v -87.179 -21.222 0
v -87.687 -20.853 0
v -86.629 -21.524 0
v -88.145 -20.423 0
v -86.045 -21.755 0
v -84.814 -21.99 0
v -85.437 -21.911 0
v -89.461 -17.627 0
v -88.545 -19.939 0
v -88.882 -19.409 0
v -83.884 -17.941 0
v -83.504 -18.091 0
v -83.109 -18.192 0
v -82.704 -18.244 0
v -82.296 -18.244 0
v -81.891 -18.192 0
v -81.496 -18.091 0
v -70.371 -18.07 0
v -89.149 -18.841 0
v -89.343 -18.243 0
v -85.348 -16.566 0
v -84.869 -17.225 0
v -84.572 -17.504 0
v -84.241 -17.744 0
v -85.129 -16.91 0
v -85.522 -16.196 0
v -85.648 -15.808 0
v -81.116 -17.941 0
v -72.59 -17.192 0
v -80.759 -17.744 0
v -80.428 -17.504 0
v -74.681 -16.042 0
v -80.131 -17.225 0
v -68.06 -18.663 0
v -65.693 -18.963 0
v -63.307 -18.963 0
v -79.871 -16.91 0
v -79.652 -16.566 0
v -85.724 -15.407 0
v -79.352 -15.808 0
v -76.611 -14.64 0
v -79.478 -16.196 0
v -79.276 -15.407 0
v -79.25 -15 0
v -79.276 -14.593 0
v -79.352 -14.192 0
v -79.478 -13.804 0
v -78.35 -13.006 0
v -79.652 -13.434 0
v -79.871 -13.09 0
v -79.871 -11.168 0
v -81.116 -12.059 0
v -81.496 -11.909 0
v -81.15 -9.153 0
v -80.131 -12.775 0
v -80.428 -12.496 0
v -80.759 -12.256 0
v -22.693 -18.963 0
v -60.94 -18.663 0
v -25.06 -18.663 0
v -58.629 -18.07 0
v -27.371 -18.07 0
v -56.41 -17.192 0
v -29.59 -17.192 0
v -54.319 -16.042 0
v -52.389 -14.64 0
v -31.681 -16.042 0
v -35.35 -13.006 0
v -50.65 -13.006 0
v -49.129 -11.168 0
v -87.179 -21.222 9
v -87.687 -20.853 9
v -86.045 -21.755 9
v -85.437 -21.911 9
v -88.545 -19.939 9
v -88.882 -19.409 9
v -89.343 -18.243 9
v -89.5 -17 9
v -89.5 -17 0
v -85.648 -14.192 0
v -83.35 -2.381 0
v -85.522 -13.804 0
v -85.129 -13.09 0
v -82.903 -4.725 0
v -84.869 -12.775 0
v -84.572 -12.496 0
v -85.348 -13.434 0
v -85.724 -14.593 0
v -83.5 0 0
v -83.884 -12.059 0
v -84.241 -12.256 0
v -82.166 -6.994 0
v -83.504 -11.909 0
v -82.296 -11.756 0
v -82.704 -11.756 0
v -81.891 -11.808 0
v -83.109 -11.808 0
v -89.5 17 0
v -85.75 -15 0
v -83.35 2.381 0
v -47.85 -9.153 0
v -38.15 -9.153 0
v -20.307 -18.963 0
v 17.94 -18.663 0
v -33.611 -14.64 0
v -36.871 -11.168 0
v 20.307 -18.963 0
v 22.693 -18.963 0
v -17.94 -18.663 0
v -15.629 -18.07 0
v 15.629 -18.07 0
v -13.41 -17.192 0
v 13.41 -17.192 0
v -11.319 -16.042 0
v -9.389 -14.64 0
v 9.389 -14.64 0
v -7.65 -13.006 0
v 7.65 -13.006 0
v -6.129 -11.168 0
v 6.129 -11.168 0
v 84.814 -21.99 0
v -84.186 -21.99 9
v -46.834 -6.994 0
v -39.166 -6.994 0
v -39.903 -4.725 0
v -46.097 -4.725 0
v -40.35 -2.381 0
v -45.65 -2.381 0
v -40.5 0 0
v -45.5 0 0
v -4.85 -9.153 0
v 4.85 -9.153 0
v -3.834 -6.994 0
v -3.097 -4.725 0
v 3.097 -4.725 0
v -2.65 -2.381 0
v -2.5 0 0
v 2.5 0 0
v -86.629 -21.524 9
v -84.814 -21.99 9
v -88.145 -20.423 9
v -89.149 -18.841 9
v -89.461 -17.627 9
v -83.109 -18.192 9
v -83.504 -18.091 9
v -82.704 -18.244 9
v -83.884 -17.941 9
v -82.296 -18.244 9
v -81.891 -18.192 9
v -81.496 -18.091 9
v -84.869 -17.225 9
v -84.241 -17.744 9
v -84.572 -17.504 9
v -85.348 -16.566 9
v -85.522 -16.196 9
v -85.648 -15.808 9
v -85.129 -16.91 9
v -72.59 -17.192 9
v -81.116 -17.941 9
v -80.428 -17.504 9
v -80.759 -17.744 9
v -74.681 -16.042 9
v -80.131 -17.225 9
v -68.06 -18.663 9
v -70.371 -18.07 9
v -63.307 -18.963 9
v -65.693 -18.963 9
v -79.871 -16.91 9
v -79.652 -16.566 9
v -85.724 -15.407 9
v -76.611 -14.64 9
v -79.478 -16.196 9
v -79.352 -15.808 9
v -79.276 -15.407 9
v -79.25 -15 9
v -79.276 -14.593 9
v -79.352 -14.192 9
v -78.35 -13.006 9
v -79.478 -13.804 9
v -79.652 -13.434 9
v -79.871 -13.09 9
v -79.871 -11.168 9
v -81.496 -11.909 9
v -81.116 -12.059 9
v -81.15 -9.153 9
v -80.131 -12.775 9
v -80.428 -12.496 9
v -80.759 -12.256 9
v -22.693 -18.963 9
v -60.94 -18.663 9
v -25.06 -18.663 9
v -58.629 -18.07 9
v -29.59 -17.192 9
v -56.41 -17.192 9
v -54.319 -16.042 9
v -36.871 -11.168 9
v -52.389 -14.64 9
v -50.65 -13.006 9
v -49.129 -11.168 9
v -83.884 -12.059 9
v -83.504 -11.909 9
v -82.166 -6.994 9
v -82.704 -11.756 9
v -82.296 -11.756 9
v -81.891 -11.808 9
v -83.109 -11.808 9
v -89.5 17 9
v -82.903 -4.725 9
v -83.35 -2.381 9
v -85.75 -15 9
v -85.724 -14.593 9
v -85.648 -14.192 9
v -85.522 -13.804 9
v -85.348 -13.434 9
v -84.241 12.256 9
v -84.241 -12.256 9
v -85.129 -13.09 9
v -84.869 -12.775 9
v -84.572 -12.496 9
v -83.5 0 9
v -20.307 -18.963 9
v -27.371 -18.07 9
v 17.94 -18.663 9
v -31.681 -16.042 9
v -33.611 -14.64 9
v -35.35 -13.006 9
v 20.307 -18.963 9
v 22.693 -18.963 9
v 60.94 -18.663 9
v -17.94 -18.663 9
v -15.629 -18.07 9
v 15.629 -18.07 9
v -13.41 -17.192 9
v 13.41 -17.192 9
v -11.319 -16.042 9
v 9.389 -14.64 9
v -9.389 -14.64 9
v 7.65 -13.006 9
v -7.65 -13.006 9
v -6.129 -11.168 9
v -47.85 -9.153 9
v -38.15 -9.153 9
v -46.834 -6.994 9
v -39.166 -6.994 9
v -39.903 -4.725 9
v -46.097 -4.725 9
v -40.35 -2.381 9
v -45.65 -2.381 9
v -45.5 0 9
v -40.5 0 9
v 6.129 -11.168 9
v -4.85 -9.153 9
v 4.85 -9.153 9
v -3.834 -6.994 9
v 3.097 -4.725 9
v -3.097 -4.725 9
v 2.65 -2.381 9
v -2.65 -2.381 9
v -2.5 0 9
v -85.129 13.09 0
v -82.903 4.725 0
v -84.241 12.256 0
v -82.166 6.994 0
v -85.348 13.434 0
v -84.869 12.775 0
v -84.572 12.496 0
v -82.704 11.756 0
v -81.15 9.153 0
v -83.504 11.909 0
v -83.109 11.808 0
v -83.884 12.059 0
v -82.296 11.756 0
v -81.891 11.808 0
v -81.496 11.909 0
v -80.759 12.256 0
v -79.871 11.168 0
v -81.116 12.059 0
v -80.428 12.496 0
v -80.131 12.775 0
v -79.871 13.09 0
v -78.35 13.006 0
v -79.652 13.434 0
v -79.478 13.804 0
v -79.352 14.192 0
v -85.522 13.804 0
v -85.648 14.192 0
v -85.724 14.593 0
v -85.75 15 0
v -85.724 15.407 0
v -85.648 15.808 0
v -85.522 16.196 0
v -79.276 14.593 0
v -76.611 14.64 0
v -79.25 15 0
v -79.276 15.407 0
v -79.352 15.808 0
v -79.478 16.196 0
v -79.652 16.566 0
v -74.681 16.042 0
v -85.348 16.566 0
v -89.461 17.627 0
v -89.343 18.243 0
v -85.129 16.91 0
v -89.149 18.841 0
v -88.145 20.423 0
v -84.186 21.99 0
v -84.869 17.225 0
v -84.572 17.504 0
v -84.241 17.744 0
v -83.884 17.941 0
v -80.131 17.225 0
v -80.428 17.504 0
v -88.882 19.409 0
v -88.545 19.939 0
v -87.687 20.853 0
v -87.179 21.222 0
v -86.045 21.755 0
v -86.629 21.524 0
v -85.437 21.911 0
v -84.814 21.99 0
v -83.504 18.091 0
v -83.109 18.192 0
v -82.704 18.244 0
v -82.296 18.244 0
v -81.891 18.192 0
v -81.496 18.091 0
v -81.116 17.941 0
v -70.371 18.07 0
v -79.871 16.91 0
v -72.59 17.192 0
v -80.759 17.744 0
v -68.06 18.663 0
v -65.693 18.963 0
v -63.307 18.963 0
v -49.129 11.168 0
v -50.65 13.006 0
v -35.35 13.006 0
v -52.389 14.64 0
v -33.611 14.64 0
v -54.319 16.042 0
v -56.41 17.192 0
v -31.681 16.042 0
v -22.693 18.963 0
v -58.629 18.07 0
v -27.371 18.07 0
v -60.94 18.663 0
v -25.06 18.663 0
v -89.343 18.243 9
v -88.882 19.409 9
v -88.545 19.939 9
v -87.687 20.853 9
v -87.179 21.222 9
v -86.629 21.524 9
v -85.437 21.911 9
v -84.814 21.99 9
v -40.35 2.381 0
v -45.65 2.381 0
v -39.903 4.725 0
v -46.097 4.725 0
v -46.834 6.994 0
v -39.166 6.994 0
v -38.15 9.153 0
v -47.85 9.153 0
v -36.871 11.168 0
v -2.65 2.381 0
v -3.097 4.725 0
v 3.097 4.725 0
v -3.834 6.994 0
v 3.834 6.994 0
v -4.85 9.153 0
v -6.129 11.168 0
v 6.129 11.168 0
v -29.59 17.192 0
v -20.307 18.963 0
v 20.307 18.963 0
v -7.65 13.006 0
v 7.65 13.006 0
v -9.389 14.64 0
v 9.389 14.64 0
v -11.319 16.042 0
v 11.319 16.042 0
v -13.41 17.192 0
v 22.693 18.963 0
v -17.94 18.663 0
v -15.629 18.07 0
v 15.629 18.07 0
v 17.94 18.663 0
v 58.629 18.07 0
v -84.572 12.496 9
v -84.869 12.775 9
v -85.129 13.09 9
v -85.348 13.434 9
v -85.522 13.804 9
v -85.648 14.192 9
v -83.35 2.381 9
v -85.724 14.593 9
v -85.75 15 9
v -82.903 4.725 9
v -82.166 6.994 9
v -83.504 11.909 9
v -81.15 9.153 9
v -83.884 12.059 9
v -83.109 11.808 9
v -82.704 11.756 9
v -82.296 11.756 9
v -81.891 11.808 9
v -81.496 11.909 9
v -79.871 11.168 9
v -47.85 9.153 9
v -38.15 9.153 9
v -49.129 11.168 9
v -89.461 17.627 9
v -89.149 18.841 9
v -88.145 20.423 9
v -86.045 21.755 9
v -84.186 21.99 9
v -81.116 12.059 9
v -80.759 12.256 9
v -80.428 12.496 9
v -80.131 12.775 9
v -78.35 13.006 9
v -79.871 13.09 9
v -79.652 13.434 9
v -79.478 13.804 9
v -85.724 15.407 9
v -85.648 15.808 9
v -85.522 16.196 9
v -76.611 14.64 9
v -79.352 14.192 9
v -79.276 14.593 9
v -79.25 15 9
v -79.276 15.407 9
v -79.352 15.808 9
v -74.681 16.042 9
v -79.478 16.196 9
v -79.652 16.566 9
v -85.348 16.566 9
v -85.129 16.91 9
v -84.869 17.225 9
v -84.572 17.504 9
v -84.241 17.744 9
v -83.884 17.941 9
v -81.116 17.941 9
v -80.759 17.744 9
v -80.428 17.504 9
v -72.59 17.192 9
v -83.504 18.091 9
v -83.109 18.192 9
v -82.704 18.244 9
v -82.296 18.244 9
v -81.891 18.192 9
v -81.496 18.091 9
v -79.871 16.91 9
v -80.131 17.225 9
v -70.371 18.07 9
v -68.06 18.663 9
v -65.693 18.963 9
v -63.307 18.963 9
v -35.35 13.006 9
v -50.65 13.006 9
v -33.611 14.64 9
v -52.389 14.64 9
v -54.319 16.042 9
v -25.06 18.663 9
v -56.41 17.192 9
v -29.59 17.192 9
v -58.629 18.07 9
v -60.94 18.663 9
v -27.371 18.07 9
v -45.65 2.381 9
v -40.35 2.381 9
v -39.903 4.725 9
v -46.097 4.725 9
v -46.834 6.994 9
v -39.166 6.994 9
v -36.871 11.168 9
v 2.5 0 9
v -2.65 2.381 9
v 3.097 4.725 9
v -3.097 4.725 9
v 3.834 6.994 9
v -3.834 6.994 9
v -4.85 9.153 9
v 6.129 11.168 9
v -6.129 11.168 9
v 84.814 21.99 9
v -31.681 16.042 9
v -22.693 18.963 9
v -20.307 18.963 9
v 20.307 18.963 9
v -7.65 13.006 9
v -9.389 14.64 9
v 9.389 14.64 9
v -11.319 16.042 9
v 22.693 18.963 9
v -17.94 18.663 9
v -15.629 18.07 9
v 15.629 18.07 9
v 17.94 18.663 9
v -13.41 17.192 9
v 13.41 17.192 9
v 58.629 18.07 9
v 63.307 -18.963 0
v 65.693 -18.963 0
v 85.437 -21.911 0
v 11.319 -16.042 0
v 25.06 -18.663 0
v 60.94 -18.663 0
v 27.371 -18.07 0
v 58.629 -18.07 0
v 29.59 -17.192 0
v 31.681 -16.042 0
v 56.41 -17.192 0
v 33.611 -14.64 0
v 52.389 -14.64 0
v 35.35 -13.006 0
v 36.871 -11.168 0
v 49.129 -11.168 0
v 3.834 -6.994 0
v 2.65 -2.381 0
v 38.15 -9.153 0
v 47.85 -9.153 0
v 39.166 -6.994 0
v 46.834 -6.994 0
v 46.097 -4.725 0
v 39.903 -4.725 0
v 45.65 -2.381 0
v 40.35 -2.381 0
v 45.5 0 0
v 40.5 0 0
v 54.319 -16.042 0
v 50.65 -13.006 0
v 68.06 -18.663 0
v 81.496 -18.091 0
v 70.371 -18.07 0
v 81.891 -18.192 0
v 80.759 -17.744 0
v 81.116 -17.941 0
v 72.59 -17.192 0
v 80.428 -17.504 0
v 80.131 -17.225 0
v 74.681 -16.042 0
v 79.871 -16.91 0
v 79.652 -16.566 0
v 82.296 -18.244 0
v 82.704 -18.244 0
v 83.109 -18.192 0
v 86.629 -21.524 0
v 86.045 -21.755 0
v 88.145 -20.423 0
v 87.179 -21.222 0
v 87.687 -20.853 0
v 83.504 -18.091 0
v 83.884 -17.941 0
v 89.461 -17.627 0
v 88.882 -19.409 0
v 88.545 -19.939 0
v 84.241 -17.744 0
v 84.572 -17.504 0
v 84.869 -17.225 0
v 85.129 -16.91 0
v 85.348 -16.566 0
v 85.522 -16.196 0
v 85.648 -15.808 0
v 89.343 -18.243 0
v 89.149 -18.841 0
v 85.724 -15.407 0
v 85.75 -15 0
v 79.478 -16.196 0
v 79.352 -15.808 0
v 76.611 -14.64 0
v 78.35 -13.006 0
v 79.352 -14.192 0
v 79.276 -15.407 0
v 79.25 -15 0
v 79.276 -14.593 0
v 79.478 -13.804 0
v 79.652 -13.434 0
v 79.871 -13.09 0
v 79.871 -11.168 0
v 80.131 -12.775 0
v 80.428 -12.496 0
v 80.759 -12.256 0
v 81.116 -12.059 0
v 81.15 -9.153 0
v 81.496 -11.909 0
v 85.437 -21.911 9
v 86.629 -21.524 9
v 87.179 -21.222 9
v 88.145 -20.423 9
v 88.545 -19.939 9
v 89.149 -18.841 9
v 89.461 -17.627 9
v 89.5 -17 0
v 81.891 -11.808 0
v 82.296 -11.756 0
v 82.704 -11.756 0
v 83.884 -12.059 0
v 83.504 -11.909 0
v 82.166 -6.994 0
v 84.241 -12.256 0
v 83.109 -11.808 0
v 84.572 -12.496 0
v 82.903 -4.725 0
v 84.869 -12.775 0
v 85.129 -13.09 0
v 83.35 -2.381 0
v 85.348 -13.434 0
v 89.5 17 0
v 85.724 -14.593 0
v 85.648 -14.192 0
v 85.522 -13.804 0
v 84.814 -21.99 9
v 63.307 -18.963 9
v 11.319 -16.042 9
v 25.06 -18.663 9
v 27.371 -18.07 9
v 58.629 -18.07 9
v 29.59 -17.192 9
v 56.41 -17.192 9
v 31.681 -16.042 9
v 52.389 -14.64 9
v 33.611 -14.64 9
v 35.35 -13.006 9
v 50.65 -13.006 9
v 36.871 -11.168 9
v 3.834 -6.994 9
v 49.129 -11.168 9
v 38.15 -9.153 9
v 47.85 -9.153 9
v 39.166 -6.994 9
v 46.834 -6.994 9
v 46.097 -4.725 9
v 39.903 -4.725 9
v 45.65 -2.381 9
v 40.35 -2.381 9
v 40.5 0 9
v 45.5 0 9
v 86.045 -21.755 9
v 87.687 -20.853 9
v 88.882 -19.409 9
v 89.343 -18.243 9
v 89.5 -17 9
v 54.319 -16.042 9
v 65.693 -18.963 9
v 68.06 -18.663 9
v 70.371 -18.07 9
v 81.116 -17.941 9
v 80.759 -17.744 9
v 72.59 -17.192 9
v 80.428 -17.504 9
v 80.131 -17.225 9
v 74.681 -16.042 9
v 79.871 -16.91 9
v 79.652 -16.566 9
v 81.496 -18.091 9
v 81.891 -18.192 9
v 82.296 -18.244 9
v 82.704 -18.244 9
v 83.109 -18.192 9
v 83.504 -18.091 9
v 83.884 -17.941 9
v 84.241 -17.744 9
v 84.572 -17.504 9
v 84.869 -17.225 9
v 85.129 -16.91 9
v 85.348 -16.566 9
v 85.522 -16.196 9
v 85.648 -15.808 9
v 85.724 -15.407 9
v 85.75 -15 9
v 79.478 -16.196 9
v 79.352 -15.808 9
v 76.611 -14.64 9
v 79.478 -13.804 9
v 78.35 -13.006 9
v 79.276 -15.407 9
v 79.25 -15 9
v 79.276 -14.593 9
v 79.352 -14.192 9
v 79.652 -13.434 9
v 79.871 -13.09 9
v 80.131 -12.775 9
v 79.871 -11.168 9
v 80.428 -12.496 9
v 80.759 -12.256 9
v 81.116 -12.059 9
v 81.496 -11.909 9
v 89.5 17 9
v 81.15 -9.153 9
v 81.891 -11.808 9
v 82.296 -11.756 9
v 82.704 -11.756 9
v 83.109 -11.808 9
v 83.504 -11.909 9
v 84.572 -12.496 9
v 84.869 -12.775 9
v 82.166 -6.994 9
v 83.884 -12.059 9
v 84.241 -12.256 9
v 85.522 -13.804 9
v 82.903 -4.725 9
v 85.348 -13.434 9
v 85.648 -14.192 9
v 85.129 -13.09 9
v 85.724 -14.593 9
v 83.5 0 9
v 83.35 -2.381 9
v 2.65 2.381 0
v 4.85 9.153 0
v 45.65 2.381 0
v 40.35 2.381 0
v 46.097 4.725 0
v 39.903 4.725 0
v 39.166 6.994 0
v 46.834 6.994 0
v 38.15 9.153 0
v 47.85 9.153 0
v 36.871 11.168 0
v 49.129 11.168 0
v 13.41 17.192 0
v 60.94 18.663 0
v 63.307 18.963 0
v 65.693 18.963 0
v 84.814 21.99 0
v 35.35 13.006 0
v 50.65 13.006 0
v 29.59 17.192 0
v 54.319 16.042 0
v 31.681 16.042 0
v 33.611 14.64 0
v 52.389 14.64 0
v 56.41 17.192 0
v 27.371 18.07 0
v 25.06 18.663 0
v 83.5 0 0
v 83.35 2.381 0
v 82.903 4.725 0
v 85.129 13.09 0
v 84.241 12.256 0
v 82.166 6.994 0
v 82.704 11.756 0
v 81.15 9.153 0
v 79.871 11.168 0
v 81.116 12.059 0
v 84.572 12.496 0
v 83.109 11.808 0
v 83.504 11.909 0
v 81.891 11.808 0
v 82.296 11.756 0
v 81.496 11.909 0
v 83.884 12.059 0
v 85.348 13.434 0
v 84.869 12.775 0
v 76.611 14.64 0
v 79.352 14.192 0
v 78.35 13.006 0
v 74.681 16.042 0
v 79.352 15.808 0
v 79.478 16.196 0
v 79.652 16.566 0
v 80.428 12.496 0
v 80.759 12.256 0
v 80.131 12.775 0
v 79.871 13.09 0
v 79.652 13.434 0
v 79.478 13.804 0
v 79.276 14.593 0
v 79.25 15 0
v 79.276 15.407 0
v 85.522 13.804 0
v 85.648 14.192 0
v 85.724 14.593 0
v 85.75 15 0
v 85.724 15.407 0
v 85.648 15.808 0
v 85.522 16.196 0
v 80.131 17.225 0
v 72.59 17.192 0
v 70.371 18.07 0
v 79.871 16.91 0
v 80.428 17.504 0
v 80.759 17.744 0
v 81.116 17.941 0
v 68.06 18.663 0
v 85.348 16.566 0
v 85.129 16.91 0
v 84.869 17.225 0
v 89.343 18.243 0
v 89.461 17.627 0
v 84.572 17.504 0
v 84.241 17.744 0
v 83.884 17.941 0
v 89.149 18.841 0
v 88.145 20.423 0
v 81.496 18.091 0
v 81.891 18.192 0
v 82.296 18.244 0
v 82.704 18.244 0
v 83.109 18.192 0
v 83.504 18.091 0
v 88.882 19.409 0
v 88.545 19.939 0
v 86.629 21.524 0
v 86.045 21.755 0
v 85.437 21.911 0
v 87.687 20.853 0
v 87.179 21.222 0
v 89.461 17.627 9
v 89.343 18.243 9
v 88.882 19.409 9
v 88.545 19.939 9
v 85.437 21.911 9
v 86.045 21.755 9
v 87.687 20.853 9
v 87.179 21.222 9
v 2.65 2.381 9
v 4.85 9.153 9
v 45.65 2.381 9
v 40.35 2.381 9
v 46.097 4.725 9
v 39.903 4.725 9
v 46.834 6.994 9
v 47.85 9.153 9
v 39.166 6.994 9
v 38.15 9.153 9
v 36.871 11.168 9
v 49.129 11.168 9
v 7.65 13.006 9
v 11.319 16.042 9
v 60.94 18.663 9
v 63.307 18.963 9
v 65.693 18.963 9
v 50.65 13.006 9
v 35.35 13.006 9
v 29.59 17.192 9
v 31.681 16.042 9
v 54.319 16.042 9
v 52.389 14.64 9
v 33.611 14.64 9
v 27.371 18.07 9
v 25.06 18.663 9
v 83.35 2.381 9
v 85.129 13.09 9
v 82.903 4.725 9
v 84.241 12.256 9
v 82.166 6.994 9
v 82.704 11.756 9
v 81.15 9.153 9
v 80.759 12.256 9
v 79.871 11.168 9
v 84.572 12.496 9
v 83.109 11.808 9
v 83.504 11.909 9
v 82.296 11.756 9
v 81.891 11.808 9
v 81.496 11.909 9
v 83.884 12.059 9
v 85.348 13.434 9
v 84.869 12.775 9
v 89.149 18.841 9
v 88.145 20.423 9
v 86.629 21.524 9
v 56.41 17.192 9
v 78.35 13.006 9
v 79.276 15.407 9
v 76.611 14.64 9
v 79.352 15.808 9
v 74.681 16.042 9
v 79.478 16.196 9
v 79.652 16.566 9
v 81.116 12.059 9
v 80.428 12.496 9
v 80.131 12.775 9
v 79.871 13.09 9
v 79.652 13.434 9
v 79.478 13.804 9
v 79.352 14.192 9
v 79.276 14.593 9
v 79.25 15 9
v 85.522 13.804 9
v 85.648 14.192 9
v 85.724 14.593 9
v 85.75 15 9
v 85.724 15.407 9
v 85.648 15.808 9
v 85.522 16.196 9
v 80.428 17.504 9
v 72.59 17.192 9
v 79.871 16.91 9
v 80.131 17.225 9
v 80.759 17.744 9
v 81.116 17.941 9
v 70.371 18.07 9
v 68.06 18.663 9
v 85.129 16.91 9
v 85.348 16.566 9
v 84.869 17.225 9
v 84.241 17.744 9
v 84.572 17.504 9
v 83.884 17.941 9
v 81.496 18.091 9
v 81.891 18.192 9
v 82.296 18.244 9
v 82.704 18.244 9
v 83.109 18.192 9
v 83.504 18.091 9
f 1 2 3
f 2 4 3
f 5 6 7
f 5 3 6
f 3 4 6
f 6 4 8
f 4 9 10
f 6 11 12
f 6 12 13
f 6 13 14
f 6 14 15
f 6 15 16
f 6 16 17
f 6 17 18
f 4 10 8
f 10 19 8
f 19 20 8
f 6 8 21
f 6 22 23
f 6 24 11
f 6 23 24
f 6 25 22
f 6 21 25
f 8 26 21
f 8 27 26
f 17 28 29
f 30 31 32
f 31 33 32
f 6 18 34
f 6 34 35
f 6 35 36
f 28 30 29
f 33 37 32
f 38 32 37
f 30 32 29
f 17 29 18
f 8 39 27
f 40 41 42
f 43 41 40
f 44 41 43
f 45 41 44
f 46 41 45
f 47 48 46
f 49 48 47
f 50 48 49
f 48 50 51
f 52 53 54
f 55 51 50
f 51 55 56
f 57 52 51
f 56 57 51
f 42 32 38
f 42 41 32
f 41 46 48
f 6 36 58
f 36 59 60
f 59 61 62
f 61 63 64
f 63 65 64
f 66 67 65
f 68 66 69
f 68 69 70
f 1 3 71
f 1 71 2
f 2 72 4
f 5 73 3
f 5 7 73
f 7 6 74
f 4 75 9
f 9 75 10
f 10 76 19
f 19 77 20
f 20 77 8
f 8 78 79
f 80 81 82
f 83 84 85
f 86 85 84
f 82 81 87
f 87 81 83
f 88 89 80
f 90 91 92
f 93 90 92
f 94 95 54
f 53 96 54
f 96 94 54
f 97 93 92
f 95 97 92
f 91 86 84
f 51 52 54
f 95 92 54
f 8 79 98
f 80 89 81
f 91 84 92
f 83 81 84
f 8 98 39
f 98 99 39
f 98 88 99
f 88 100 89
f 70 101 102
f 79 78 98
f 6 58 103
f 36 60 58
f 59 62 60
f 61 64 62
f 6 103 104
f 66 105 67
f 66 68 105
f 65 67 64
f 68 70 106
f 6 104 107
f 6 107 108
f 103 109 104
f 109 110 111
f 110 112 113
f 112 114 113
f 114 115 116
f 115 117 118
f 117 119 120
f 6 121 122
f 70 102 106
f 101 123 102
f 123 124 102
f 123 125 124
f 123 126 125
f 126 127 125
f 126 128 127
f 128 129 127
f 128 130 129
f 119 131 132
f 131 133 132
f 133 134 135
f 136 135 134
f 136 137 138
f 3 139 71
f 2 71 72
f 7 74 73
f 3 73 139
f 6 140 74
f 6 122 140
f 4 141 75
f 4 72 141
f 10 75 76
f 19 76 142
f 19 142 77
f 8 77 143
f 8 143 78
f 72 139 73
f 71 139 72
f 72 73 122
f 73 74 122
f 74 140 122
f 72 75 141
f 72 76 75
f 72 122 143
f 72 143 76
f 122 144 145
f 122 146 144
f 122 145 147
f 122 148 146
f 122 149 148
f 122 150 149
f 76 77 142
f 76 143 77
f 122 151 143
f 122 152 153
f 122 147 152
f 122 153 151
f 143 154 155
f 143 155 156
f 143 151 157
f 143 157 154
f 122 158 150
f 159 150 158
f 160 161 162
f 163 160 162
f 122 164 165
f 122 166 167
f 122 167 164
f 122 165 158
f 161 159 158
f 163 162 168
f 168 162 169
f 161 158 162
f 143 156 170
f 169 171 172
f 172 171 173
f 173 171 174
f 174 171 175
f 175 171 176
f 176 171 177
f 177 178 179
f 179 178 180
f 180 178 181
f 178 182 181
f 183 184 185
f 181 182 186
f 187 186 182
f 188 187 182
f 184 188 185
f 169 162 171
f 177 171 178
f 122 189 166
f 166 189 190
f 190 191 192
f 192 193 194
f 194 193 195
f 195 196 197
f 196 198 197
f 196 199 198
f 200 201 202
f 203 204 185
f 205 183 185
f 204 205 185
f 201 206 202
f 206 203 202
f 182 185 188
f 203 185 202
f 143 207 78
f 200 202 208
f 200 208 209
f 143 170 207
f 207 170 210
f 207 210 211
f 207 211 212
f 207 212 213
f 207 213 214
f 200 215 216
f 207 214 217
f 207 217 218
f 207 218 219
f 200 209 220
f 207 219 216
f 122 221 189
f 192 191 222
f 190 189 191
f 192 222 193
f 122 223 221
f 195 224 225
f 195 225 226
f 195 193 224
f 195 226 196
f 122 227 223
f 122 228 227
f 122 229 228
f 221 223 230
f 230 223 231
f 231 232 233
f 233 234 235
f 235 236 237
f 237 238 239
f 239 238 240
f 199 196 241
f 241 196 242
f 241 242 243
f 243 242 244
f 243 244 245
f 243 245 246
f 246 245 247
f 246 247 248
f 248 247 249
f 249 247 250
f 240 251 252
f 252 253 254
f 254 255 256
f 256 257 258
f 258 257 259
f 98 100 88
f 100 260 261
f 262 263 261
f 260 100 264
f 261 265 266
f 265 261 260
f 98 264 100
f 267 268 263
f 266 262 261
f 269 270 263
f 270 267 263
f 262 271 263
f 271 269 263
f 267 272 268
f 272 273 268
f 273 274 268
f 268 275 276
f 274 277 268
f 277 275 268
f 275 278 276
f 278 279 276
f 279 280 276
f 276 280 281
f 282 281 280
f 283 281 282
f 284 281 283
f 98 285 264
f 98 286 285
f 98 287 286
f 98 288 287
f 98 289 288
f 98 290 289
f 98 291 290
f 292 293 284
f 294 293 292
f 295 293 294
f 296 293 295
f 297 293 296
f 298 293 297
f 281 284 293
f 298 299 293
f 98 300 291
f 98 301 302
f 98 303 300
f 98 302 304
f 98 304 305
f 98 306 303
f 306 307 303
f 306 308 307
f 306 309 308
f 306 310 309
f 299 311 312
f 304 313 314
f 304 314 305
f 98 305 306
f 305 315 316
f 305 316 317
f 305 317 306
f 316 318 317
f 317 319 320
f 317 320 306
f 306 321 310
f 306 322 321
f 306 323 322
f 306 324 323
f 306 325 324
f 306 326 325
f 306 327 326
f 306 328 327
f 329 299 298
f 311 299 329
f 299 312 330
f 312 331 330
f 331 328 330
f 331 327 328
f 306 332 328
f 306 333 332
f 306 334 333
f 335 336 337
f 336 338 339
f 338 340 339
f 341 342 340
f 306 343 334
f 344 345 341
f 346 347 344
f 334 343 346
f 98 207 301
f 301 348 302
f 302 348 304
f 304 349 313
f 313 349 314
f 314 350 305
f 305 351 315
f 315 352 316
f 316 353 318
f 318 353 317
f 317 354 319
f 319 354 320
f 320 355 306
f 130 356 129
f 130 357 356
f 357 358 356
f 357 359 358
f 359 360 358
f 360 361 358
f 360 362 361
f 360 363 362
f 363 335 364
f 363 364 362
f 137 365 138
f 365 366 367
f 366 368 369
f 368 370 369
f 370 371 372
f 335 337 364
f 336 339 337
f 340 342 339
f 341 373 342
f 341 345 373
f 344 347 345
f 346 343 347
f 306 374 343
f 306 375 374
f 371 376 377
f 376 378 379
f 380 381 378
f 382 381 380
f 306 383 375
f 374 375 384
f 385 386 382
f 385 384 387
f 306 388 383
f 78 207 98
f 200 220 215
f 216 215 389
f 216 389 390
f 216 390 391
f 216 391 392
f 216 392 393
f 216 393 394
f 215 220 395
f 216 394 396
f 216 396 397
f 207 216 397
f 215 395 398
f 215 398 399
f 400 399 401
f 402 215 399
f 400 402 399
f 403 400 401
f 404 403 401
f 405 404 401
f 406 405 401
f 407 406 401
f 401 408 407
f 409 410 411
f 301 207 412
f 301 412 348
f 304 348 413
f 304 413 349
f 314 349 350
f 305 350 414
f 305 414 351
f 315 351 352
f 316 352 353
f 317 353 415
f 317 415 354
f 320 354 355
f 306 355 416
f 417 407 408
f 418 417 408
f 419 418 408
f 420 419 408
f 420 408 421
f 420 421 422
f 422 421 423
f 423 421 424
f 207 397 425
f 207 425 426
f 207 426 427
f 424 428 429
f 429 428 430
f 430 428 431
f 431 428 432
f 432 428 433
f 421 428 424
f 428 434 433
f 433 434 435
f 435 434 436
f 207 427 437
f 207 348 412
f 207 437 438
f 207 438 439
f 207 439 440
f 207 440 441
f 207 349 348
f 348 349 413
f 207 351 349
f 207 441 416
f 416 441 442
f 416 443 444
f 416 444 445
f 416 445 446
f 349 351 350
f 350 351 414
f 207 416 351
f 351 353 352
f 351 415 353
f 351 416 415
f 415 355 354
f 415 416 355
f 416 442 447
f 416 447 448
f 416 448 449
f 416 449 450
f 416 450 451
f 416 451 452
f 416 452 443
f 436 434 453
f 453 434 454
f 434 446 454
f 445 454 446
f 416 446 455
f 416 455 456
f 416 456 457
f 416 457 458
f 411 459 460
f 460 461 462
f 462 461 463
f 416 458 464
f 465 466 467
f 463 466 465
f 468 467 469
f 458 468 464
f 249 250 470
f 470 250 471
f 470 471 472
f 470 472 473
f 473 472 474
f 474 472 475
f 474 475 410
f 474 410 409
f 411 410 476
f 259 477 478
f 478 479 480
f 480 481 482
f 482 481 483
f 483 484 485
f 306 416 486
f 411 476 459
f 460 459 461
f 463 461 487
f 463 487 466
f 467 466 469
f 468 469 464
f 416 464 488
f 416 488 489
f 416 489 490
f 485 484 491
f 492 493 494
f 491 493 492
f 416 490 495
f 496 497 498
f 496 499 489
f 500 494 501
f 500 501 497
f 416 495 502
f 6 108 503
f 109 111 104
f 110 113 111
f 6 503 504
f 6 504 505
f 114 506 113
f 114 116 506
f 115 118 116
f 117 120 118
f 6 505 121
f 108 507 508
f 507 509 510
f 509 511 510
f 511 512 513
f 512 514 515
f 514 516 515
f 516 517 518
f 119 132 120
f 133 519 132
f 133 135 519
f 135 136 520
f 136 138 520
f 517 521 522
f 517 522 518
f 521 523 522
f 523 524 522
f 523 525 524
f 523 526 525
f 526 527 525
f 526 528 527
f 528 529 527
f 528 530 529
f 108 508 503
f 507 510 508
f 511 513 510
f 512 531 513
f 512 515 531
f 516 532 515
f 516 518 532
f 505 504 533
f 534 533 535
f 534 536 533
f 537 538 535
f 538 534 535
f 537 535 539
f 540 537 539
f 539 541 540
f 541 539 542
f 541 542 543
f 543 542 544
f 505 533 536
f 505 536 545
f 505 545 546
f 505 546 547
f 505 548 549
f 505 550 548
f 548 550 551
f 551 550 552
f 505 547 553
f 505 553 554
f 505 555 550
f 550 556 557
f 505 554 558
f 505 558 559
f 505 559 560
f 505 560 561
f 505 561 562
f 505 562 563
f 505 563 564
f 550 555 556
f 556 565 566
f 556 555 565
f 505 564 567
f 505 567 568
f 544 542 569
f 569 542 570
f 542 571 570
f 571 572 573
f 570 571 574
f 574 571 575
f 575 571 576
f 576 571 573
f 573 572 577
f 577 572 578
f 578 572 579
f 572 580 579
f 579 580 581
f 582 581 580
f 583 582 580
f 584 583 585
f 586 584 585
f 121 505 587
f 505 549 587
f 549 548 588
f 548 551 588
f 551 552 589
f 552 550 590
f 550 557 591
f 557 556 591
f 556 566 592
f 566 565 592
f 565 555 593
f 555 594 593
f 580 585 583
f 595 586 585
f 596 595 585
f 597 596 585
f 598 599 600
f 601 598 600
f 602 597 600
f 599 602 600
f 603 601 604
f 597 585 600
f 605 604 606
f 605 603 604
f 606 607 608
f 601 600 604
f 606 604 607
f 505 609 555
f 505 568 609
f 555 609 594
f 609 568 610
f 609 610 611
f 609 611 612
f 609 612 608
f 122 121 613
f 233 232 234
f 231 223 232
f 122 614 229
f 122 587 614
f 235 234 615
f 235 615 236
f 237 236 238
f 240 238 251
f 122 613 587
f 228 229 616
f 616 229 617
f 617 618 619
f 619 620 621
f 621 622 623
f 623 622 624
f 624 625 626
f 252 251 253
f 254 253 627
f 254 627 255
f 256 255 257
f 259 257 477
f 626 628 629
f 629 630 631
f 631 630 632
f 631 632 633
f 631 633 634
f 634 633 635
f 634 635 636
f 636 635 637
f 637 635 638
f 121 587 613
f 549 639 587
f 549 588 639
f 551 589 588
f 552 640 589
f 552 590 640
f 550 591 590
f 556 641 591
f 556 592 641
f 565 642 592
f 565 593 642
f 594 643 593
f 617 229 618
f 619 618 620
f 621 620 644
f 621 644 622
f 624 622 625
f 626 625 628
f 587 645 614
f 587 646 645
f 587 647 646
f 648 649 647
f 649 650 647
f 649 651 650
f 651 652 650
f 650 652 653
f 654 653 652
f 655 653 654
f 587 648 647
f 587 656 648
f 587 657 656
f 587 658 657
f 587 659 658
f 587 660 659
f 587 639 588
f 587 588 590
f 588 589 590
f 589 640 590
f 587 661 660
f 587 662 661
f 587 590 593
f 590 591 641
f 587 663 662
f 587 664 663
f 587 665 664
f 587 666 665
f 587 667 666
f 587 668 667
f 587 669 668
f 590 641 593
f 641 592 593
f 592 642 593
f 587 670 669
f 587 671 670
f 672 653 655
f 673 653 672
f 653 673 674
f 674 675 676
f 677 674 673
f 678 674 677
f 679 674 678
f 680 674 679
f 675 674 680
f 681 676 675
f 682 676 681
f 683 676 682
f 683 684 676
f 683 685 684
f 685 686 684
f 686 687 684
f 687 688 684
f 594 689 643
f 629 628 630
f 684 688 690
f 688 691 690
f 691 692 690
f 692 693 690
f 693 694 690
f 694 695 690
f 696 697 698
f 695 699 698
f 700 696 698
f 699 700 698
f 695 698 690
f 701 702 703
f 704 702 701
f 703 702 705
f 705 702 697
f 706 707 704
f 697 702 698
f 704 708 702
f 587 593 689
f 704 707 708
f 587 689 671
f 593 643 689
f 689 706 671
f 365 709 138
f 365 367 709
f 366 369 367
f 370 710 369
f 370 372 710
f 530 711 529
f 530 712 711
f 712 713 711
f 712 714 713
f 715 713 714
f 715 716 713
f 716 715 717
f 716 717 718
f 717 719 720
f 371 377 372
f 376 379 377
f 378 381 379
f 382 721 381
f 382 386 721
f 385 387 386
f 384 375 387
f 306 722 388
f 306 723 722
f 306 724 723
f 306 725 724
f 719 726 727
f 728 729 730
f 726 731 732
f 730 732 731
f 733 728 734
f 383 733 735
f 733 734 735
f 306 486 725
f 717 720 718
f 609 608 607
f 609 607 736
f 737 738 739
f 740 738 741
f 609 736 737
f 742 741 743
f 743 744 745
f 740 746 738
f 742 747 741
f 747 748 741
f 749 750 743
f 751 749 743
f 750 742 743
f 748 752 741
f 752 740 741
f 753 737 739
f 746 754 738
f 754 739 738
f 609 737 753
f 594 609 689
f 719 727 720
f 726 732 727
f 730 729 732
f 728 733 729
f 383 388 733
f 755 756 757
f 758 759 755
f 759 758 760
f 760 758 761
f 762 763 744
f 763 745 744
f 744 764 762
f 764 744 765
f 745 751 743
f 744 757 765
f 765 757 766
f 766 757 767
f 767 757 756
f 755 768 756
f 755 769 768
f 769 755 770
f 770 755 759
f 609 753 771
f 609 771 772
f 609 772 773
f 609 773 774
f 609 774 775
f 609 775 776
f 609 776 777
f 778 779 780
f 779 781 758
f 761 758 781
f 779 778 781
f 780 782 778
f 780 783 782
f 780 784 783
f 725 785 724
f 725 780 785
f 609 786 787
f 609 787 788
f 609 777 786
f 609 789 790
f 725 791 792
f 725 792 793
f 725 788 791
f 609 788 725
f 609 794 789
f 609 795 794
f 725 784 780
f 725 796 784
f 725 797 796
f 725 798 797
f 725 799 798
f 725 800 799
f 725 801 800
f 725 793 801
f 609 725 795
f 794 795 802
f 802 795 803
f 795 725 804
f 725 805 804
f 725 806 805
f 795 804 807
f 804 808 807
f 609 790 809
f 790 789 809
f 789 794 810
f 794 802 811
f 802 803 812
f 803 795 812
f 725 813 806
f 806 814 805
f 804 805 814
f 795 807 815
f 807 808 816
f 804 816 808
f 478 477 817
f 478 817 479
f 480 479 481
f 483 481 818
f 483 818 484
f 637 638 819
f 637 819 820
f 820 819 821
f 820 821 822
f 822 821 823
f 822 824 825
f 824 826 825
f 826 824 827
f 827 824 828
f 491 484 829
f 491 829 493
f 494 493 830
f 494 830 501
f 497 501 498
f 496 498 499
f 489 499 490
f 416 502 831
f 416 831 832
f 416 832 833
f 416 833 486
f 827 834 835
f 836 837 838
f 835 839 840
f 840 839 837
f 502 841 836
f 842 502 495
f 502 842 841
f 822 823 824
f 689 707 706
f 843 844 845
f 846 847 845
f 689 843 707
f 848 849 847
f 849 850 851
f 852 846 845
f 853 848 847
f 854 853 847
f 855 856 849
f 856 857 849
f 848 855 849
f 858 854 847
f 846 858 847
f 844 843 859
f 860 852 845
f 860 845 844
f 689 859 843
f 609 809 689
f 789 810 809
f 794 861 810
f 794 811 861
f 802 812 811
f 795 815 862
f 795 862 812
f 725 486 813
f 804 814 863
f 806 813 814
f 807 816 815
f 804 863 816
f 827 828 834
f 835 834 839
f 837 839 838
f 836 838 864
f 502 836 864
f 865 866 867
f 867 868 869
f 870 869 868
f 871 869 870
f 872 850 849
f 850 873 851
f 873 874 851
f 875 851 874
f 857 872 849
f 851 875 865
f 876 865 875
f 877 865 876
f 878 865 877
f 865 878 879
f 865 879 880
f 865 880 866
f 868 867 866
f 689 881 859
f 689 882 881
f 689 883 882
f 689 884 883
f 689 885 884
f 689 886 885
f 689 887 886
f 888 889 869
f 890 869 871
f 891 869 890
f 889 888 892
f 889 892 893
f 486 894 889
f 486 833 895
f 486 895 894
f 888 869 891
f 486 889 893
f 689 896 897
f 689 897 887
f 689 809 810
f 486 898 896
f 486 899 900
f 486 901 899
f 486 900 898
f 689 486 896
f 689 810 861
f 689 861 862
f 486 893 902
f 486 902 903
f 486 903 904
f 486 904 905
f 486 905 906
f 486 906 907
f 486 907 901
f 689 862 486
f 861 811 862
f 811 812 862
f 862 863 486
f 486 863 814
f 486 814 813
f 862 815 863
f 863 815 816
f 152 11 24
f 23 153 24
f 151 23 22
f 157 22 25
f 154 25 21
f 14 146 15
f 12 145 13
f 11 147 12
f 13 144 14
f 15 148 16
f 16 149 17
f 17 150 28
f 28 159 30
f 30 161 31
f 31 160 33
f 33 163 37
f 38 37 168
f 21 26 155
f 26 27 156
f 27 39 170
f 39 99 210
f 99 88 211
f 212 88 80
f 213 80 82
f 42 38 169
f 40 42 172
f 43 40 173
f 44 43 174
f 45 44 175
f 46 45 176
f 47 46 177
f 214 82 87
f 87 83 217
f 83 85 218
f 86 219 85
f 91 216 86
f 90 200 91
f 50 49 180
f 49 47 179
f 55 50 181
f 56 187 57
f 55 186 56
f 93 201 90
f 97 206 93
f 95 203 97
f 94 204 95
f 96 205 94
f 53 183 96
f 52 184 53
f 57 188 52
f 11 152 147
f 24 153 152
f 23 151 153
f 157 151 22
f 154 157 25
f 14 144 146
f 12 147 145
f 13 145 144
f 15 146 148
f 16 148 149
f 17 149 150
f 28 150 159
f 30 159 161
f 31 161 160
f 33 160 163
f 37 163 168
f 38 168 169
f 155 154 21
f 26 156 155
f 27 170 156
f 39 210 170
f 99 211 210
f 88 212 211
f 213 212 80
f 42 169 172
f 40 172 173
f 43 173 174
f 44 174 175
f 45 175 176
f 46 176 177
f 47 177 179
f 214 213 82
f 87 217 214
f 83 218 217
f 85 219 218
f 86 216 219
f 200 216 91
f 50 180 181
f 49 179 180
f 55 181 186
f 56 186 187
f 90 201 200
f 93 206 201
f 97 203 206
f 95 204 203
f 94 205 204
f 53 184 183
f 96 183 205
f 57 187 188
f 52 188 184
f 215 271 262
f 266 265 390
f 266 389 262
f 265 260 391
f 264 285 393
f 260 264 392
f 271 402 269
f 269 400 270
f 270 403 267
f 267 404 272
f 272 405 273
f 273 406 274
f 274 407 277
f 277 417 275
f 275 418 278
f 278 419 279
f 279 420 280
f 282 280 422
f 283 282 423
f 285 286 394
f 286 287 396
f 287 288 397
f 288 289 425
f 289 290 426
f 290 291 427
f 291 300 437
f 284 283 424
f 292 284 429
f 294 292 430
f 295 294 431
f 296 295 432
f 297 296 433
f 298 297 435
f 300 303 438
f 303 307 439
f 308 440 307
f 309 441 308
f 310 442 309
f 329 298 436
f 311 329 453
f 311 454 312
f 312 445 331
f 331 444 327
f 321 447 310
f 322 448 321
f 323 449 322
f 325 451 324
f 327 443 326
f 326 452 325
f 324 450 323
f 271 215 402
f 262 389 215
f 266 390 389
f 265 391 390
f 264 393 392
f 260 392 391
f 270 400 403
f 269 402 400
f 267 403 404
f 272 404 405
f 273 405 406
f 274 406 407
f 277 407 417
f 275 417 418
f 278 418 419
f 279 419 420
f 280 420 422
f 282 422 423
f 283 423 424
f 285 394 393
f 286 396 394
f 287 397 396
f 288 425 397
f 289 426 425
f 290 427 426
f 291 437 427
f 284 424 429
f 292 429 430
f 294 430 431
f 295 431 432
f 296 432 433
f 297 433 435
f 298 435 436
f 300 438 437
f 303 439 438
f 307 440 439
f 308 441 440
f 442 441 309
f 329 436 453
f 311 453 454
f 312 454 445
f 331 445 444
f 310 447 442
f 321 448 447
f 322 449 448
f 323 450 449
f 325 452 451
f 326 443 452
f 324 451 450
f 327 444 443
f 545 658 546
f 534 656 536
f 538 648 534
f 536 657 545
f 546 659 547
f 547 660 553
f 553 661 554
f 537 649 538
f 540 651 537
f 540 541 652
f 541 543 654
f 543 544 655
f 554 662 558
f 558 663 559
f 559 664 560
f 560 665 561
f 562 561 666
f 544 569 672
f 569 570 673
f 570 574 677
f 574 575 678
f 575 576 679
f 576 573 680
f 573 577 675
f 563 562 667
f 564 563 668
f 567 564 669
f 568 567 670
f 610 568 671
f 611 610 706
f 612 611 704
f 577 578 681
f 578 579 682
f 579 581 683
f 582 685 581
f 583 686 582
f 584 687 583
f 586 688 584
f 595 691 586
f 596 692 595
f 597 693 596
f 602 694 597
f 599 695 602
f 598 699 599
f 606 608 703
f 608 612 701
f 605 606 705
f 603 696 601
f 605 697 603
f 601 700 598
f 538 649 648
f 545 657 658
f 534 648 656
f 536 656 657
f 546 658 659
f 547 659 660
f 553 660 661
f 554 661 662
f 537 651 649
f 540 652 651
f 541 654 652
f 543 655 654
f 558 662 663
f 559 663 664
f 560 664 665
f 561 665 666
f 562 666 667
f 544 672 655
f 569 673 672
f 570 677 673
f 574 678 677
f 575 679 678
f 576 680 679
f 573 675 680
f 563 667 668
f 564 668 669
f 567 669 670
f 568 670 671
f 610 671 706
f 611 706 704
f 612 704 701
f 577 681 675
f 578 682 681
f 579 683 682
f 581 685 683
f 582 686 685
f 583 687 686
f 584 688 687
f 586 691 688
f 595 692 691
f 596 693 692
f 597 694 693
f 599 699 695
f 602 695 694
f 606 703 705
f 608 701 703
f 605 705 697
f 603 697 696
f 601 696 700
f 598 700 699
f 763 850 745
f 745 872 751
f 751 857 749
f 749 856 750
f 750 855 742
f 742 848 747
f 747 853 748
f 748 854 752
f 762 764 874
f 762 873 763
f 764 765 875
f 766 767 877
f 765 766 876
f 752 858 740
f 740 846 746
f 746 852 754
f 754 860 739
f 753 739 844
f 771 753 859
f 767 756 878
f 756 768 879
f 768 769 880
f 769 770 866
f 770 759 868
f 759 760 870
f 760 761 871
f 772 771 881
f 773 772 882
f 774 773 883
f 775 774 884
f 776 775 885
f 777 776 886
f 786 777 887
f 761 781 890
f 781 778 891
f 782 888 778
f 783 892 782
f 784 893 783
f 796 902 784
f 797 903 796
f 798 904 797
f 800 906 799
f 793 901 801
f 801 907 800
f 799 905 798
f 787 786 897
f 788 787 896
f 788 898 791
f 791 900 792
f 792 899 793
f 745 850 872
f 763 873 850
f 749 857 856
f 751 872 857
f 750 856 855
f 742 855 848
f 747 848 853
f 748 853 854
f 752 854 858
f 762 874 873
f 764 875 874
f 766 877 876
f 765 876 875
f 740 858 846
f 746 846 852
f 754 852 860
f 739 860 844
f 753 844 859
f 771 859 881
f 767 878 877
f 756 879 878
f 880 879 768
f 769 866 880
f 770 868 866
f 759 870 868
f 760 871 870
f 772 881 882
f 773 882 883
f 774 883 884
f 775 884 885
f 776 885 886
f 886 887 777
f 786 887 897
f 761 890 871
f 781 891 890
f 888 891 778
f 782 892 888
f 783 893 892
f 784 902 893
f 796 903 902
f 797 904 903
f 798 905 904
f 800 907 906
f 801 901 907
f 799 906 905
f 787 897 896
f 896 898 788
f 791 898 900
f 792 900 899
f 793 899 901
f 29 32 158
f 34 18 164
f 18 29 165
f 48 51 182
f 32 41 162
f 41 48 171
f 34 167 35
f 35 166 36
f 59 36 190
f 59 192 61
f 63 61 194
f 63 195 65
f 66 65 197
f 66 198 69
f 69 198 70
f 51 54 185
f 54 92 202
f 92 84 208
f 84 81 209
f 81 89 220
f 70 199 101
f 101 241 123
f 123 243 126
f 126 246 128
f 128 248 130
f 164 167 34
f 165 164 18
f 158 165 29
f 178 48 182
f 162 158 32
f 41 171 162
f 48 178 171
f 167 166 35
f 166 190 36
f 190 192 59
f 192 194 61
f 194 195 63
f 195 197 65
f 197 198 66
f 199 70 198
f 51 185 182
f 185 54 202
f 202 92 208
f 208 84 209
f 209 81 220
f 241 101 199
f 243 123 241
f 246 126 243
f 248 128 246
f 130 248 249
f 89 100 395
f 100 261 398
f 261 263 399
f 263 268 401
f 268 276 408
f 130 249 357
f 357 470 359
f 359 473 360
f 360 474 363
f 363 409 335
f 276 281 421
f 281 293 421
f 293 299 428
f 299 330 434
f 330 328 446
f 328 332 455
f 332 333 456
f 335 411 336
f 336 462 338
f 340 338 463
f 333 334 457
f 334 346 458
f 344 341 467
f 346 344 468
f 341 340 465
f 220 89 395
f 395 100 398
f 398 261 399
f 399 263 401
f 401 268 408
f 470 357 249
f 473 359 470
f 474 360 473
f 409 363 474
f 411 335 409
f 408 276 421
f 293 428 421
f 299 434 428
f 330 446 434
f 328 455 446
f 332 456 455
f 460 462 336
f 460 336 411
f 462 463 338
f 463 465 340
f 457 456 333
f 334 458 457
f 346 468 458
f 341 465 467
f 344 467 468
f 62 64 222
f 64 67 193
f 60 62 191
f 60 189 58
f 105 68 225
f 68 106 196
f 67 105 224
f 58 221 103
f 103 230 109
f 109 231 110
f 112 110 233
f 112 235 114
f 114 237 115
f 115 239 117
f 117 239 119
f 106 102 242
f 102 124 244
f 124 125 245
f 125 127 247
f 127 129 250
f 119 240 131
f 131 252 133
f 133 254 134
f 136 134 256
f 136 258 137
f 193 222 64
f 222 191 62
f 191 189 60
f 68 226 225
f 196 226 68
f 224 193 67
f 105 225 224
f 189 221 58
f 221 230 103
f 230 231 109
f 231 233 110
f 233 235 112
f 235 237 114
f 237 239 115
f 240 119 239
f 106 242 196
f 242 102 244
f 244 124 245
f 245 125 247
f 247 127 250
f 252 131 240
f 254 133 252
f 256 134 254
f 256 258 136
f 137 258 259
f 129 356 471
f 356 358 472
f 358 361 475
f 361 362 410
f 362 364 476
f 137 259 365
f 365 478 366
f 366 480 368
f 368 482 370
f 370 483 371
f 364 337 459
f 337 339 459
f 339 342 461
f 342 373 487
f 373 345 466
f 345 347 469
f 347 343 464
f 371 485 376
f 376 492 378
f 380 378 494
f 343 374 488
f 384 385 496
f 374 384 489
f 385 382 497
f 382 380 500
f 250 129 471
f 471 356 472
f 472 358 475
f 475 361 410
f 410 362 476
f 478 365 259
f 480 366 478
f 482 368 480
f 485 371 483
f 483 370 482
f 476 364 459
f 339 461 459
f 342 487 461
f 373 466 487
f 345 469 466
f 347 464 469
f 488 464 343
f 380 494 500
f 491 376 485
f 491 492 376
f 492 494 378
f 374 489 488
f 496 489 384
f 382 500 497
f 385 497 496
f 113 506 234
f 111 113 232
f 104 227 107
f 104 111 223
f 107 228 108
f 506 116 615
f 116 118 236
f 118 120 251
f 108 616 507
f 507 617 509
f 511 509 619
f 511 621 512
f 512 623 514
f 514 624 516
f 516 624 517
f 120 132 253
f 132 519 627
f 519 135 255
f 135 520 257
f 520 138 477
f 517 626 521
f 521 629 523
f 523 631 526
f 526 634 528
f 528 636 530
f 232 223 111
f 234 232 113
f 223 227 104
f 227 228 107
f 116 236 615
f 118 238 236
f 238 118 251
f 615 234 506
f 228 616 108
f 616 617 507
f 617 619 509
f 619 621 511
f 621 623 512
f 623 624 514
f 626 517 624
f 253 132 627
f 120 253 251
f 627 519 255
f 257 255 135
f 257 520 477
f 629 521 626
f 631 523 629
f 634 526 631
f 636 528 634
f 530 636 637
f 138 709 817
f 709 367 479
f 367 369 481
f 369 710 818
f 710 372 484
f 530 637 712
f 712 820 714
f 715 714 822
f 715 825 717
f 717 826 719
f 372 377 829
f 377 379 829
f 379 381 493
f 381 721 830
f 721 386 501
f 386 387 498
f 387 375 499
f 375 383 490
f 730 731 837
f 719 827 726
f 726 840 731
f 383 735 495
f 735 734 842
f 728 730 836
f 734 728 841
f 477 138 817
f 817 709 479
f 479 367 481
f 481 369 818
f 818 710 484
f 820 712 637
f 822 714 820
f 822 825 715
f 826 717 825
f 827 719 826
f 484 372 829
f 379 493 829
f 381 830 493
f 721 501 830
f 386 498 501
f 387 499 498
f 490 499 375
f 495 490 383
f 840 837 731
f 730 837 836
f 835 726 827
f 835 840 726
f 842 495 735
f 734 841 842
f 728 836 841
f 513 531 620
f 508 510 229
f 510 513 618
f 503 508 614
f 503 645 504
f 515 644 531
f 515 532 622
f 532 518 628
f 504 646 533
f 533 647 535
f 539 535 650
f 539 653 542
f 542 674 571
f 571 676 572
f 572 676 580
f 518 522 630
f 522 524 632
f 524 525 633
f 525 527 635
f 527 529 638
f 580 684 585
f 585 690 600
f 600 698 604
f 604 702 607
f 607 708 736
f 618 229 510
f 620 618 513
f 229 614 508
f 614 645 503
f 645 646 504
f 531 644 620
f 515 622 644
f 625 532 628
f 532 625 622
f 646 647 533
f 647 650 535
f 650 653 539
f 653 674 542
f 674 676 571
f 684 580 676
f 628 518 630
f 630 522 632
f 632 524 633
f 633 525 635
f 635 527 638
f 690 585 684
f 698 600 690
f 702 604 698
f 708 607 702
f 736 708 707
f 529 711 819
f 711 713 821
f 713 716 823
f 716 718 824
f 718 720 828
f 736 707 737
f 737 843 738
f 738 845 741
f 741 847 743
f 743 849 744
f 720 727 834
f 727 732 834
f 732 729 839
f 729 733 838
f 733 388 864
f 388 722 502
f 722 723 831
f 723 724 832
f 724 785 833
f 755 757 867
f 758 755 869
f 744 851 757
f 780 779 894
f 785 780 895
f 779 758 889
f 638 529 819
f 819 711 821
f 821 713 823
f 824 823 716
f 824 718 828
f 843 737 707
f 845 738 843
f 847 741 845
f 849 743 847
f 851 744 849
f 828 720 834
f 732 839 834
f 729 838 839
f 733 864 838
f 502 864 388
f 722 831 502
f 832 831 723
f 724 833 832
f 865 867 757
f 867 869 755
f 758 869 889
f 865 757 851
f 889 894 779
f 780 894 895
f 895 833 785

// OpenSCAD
$fn = 50;

difference() {
	union() {
		hull() {
			translate(v = [-84.5, 17.0, 0]) {
				cylinder(h = 9, r = 5);
			}
			translate(v = [84.5, 17.0, 0]) {
				cylinder(h = 9, r = 5);
			}
			translate(v = [-84.5, -17.0, 0]) {
				cylinder(h = 9, r = 5);
			}
			translate(v = [84.5, -17.0, 0]) {
				cylinder(h = 9, r = 5);
			}
		}
	}
	union() {
		translate(v = [-82.5, -15.0, -100.0]) {
			cylinder(h = 200, r = 3.25);
		}
		translate(v = [-82.5, 15.0, -100.0]) {
			cylinder(h = 200, r = 3.25);
		}
		translate(v = [82.5, -15.0, -100.0]) {
			cylinder(h = 200, r = 3.25);
		}
		translate(v = [82.5, 15.0, -100.0]) {
			cylinder(h = 200, r = 3.25);
		}
		translate(v = [-82.5, -15.0, -100.0]) {
			cylinder(h = 200, r = 1.8);
		}
		translate(v = [-82.5, 15.0, -100.0]) {
			cylinder(h = 200, r = 1.8);
		}
		translate(v = [82.5, -15.0, -100.0]) {
			cylinder(h = 200, r = 1.8);
		}
		translate(v = [82.5, 15.0, -100.0]) {
			cylinder(h = 200, r = 1.8);
		}
		translate(v = [-64.5, 0, 0.0]) {
			cylinder(h = 9, r = 19.0);
		}
		translate(v = [-21.5, 0, 0.0]) {
			cylinder(h = 9, r = 19.0);
		}
		translate(v = [21.5, 0, 0.0]) {
			cylinder(h = 9, r = 19.0);
		}
		translate(v = [64.5, 0, 0.0]) {
			cylinder(h = 9, r = 19.0);
		}
	}
}
